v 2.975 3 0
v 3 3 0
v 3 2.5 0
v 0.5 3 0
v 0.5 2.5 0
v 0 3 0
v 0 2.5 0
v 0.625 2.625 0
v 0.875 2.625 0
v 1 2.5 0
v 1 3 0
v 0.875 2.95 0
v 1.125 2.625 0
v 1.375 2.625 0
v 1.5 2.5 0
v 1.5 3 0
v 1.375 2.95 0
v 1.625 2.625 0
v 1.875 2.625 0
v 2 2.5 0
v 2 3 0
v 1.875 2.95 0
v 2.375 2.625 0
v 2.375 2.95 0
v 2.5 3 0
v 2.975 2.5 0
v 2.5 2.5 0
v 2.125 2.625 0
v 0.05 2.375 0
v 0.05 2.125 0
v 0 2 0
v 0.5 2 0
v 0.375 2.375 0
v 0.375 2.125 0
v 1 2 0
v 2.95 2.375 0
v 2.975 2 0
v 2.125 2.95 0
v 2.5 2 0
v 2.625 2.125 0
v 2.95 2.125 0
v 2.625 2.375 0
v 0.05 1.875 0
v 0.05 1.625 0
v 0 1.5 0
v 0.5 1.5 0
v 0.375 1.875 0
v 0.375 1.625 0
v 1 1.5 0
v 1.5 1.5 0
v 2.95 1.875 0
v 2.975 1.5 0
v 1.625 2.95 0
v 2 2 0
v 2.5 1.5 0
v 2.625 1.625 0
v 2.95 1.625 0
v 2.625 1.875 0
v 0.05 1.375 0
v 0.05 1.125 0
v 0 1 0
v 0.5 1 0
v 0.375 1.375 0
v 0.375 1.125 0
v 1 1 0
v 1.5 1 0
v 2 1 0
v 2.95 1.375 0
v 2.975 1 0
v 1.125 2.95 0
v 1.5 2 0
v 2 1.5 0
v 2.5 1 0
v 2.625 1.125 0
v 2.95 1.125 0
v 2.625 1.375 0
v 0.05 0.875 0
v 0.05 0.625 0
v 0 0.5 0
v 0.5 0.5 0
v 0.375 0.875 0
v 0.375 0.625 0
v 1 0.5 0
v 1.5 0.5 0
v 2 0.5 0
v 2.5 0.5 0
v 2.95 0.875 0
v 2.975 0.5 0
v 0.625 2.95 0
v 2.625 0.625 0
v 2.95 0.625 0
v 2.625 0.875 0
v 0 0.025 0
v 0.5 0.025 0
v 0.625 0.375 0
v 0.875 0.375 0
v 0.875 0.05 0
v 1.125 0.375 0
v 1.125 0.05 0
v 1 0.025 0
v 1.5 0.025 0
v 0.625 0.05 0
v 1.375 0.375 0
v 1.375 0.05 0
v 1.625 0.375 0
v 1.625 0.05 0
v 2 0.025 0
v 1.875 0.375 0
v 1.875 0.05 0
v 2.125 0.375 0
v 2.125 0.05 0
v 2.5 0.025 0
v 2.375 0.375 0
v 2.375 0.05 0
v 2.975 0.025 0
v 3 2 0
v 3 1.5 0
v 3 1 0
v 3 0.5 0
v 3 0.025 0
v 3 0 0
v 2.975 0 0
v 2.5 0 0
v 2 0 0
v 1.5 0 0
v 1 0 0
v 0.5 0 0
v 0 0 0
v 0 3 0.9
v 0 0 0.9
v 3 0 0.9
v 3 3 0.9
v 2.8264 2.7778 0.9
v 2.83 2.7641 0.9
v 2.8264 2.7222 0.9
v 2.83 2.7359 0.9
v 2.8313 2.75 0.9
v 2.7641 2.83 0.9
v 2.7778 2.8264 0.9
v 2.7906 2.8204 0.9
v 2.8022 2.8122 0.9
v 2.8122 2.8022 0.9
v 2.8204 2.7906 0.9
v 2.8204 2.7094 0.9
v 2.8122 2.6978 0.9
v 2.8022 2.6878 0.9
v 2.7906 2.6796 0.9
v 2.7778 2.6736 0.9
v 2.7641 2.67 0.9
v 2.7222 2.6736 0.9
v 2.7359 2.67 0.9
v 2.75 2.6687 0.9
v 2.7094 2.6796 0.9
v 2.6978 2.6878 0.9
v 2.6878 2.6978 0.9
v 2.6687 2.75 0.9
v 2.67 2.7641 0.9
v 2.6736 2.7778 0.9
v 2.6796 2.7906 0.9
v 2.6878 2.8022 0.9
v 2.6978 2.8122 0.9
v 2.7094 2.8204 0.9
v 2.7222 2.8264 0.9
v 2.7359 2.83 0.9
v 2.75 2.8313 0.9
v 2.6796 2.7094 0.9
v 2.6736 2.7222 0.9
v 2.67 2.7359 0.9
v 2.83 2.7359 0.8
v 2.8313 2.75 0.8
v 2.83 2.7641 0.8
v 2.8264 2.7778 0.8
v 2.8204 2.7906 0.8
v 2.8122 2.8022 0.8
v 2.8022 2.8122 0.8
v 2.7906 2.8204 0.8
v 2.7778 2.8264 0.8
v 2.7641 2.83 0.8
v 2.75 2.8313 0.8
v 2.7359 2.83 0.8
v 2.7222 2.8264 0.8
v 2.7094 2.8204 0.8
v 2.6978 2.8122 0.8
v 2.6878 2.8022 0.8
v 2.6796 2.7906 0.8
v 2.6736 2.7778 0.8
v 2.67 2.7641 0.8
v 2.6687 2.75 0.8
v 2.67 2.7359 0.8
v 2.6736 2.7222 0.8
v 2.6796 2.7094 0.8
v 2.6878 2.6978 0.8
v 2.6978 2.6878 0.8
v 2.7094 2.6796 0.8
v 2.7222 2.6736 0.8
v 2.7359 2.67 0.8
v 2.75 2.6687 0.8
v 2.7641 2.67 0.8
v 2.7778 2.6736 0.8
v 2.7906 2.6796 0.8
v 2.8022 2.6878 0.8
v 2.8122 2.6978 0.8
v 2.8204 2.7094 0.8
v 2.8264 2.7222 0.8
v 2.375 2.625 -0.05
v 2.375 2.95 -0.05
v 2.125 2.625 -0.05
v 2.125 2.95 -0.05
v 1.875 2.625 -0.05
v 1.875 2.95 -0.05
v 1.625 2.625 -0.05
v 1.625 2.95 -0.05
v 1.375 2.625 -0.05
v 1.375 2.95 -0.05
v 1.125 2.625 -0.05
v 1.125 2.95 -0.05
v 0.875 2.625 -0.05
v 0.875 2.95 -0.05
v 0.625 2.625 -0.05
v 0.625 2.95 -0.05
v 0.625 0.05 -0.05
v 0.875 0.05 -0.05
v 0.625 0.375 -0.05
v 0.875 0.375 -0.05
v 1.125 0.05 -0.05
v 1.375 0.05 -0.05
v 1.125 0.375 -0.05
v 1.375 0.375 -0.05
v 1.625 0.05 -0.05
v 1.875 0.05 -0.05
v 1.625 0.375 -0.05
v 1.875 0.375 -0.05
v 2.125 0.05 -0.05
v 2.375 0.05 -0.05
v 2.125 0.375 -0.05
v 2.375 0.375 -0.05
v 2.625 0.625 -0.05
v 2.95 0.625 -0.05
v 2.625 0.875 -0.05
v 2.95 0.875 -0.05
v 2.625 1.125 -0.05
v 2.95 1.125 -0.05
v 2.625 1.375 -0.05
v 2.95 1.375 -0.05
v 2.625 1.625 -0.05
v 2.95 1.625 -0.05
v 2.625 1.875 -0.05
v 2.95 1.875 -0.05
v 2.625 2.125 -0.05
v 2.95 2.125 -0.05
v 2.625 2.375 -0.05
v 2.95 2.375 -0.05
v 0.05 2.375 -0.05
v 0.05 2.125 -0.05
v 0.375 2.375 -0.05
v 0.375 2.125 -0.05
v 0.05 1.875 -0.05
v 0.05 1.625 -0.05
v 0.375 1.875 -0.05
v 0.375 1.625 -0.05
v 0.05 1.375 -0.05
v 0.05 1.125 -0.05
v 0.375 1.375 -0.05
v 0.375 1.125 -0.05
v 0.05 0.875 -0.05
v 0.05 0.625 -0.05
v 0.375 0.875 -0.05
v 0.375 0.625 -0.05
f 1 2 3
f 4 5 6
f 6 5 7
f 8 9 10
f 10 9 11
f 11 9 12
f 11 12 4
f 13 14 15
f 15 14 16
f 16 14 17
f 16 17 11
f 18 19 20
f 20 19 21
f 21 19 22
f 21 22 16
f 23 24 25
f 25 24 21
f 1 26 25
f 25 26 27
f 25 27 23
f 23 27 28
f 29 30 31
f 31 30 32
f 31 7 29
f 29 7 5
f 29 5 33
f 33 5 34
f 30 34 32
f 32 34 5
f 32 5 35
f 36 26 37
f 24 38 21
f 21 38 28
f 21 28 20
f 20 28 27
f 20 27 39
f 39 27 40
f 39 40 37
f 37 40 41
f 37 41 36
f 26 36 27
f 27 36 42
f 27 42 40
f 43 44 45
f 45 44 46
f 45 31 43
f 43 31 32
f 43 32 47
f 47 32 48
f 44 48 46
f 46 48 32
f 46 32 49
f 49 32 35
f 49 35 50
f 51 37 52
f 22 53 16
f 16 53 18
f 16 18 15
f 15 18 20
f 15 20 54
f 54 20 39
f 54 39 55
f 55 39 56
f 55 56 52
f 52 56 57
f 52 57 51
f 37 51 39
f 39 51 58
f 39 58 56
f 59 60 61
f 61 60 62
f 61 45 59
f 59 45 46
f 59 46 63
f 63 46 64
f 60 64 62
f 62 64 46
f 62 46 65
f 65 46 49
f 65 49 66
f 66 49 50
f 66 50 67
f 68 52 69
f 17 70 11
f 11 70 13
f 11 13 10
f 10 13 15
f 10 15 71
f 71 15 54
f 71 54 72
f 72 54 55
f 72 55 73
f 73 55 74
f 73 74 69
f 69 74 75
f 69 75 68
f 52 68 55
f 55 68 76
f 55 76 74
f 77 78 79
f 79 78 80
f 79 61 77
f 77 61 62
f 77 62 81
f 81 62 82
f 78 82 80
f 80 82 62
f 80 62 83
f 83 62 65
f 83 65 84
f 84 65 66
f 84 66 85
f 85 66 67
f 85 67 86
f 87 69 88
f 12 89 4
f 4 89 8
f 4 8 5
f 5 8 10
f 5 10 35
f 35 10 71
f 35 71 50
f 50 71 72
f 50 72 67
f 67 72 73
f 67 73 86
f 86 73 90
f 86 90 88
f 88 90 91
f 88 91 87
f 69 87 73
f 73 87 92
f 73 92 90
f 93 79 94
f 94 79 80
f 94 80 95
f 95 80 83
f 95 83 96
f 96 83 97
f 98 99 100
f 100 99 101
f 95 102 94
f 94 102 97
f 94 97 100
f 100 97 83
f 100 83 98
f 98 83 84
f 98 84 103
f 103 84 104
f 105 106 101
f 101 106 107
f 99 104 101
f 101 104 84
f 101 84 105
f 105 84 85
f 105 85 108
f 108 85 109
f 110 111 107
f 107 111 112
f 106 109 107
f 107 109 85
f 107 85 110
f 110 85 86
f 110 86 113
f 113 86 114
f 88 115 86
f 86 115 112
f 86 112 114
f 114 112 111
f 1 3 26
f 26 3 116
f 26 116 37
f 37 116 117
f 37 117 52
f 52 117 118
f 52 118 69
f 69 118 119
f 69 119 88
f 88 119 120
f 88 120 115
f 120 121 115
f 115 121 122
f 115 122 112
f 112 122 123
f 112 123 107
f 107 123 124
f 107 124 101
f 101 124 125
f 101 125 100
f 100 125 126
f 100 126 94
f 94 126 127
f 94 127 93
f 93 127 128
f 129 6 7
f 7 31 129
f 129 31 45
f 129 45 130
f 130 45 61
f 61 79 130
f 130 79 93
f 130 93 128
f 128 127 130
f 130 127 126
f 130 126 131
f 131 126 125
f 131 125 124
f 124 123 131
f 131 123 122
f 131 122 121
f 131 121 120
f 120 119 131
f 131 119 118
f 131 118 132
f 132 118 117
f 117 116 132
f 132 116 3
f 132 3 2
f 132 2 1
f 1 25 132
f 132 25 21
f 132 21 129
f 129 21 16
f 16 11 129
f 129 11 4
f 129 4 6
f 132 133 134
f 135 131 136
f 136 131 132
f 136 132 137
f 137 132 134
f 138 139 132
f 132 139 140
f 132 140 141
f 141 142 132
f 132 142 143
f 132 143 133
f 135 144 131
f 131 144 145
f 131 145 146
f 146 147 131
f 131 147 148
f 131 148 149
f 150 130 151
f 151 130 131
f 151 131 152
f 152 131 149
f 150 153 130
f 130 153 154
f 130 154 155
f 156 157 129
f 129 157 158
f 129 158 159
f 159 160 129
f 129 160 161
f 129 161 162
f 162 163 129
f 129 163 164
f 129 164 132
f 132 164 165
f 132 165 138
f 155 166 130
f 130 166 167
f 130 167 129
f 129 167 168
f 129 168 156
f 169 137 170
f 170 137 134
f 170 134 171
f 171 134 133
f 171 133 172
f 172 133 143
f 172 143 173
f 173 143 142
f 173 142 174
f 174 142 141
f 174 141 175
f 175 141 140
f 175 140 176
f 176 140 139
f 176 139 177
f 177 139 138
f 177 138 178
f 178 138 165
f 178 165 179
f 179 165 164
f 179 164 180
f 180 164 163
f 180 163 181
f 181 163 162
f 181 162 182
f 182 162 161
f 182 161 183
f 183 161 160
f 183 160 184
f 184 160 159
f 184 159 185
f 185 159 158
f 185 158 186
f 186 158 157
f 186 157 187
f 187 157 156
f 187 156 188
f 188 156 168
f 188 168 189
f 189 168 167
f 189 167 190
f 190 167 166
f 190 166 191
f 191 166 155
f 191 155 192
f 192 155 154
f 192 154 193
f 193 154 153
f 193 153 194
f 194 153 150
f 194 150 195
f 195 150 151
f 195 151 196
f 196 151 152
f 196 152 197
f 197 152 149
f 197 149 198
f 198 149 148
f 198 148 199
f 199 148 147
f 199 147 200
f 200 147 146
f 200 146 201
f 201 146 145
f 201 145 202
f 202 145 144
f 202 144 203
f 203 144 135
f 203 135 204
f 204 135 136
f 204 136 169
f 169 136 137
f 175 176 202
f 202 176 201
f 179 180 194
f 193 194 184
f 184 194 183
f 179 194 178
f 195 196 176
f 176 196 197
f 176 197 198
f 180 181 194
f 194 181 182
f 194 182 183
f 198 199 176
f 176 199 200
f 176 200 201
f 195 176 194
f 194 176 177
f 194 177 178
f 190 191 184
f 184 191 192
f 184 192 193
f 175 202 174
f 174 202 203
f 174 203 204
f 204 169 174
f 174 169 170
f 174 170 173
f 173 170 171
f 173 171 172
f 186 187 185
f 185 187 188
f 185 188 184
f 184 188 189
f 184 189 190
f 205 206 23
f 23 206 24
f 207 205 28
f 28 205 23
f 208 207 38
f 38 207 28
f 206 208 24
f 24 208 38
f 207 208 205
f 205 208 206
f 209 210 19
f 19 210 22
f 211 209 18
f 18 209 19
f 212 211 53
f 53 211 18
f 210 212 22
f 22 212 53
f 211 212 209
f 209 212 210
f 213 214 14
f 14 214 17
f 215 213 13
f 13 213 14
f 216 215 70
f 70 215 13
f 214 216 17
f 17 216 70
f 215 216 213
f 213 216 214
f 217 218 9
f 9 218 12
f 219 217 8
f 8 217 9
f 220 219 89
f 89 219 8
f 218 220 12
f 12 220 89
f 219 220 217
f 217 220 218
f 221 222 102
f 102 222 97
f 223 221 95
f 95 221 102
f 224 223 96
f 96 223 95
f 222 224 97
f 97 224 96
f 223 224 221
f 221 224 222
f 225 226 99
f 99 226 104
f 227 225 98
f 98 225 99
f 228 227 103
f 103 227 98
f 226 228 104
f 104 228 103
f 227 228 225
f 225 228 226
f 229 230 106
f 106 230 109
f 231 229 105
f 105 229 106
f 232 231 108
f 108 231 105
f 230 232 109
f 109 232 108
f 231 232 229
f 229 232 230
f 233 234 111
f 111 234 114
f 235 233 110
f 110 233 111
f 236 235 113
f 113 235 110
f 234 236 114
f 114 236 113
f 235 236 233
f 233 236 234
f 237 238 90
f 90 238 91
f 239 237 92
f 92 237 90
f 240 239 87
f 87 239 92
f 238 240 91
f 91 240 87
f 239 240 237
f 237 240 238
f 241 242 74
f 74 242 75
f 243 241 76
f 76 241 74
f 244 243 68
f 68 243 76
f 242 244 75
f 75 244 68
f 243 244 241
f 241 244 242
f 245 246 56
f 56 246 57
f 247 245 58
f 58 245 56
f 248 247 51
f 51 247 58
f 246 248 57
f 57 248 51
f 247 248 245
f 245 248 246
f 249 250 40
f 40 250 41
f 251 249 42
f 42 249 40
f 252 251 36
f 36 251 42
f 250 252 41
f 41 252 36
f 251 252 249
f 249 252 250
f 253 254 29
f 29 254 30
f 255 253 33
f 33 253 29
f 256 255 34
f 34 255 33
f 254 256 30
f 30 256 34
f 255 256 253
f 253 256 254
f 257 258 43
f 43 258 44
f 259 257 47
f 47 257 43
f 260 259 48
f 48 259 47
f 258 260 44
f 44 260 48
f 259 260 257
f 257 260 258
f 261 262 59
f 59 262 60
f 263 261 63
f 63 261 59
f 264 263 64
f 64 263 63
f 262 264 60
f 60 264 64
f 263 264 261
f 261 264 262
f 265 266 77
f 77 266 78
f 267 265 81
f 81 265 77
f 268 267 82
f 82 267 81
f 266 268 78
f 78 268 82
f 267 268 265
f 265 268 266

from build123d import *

# Parameters (mm, degrees)
SKETCH2_W           = 3
SKETCH2_H           = 3
BOSS_EXTRUDE1_DEPTH = 0.9
SKETCH3_R           = 0.081261336
CUT_EXTRUDE1_DEPTH  = 0.1
SKETCH4_W           = 0.25
SKETCH4_H           = 0.325
BOSS_EXTRUDE2_DEPTH = 0.05
CIRPATTERN1_COUNT   = 2
CIRPATTERN1_ANGLE   = 90


with BuildPart() as part:
    # Sketch2 → Boss-Extrude1 (new body)
    with BuildSketch(Plane.XY):
        with Locations((1.5, 1.5)):
            Rectangle(SKETCH2_W, SKETCH2_H)
    extrude(amount=BOSS_EXTRUDE1_DEPTH)

    # Sketch3 → Cut-Extrude1 (cut)
    with BuildSketch(Plane.XY.offset(0.9)):
        with Locations((2.75, 2.75)):
            Circle(SKETCH3_R)
    extrude(amount=-CUT_EXTRUDE1_DEPTH, mode=Mode.SUBTRACT)

    # Sketch4 → Boss-Extrude2 (add)
    with BuildSketch(Plane(origin=(0, 0, 0), x_dir=(-1, 0, 0), z_dir=(0, 0, -1))):
        with Locations((-2.25, 2.7875)):
            Rectangle(SKETCH4_W, SKETCH4_H)
        with Locations((-1.75, 2.7875)):
            Rectangle(SKETCH4_W, SKETCH4_H)
        with Locations((-1.25, 2.7875)):
            Rectangle(SKETCH4_W, SKETCH4_H)
        with Locations((-0.75, 2.7875)):
            Rectangle(SKETCH4_W, SKETCH4_H)
        with Locations((-0.75, 0.2125)):
            Rectangle(SKETCH4_W, SKETCH4_H)
        with Locations((-1.25, 0.2125)):
            Rectangle(SKETCH4_W, SKETCH4_H)
        with Locations((-1.75, 0.2125)):
            Rectangle(SKETCH4_W, SKETCH4_H)
        with Locations((-2.25, 0.2125)):
            Rectangle(SKETCH4_W, SKETCH4_H)
    boss_extrude2 = extrude(amount=BOSS_EXTRUDE2_DEPTH)

    # CirPattern1: Boss-Extrude2 ×2 about axis
    cirpattern1_axis = Axis((1.5, 1.5, 0.945), (0, 0, -1))
    for i in range(1, CIRPATTERN1_COUNT):
        add(boss_extrude2.rotate(cirpattern1_axis, i * CIRPATTERN1_ANGLE / (CIRPATTERN1_COUNT - 1)))


solid = part.part
